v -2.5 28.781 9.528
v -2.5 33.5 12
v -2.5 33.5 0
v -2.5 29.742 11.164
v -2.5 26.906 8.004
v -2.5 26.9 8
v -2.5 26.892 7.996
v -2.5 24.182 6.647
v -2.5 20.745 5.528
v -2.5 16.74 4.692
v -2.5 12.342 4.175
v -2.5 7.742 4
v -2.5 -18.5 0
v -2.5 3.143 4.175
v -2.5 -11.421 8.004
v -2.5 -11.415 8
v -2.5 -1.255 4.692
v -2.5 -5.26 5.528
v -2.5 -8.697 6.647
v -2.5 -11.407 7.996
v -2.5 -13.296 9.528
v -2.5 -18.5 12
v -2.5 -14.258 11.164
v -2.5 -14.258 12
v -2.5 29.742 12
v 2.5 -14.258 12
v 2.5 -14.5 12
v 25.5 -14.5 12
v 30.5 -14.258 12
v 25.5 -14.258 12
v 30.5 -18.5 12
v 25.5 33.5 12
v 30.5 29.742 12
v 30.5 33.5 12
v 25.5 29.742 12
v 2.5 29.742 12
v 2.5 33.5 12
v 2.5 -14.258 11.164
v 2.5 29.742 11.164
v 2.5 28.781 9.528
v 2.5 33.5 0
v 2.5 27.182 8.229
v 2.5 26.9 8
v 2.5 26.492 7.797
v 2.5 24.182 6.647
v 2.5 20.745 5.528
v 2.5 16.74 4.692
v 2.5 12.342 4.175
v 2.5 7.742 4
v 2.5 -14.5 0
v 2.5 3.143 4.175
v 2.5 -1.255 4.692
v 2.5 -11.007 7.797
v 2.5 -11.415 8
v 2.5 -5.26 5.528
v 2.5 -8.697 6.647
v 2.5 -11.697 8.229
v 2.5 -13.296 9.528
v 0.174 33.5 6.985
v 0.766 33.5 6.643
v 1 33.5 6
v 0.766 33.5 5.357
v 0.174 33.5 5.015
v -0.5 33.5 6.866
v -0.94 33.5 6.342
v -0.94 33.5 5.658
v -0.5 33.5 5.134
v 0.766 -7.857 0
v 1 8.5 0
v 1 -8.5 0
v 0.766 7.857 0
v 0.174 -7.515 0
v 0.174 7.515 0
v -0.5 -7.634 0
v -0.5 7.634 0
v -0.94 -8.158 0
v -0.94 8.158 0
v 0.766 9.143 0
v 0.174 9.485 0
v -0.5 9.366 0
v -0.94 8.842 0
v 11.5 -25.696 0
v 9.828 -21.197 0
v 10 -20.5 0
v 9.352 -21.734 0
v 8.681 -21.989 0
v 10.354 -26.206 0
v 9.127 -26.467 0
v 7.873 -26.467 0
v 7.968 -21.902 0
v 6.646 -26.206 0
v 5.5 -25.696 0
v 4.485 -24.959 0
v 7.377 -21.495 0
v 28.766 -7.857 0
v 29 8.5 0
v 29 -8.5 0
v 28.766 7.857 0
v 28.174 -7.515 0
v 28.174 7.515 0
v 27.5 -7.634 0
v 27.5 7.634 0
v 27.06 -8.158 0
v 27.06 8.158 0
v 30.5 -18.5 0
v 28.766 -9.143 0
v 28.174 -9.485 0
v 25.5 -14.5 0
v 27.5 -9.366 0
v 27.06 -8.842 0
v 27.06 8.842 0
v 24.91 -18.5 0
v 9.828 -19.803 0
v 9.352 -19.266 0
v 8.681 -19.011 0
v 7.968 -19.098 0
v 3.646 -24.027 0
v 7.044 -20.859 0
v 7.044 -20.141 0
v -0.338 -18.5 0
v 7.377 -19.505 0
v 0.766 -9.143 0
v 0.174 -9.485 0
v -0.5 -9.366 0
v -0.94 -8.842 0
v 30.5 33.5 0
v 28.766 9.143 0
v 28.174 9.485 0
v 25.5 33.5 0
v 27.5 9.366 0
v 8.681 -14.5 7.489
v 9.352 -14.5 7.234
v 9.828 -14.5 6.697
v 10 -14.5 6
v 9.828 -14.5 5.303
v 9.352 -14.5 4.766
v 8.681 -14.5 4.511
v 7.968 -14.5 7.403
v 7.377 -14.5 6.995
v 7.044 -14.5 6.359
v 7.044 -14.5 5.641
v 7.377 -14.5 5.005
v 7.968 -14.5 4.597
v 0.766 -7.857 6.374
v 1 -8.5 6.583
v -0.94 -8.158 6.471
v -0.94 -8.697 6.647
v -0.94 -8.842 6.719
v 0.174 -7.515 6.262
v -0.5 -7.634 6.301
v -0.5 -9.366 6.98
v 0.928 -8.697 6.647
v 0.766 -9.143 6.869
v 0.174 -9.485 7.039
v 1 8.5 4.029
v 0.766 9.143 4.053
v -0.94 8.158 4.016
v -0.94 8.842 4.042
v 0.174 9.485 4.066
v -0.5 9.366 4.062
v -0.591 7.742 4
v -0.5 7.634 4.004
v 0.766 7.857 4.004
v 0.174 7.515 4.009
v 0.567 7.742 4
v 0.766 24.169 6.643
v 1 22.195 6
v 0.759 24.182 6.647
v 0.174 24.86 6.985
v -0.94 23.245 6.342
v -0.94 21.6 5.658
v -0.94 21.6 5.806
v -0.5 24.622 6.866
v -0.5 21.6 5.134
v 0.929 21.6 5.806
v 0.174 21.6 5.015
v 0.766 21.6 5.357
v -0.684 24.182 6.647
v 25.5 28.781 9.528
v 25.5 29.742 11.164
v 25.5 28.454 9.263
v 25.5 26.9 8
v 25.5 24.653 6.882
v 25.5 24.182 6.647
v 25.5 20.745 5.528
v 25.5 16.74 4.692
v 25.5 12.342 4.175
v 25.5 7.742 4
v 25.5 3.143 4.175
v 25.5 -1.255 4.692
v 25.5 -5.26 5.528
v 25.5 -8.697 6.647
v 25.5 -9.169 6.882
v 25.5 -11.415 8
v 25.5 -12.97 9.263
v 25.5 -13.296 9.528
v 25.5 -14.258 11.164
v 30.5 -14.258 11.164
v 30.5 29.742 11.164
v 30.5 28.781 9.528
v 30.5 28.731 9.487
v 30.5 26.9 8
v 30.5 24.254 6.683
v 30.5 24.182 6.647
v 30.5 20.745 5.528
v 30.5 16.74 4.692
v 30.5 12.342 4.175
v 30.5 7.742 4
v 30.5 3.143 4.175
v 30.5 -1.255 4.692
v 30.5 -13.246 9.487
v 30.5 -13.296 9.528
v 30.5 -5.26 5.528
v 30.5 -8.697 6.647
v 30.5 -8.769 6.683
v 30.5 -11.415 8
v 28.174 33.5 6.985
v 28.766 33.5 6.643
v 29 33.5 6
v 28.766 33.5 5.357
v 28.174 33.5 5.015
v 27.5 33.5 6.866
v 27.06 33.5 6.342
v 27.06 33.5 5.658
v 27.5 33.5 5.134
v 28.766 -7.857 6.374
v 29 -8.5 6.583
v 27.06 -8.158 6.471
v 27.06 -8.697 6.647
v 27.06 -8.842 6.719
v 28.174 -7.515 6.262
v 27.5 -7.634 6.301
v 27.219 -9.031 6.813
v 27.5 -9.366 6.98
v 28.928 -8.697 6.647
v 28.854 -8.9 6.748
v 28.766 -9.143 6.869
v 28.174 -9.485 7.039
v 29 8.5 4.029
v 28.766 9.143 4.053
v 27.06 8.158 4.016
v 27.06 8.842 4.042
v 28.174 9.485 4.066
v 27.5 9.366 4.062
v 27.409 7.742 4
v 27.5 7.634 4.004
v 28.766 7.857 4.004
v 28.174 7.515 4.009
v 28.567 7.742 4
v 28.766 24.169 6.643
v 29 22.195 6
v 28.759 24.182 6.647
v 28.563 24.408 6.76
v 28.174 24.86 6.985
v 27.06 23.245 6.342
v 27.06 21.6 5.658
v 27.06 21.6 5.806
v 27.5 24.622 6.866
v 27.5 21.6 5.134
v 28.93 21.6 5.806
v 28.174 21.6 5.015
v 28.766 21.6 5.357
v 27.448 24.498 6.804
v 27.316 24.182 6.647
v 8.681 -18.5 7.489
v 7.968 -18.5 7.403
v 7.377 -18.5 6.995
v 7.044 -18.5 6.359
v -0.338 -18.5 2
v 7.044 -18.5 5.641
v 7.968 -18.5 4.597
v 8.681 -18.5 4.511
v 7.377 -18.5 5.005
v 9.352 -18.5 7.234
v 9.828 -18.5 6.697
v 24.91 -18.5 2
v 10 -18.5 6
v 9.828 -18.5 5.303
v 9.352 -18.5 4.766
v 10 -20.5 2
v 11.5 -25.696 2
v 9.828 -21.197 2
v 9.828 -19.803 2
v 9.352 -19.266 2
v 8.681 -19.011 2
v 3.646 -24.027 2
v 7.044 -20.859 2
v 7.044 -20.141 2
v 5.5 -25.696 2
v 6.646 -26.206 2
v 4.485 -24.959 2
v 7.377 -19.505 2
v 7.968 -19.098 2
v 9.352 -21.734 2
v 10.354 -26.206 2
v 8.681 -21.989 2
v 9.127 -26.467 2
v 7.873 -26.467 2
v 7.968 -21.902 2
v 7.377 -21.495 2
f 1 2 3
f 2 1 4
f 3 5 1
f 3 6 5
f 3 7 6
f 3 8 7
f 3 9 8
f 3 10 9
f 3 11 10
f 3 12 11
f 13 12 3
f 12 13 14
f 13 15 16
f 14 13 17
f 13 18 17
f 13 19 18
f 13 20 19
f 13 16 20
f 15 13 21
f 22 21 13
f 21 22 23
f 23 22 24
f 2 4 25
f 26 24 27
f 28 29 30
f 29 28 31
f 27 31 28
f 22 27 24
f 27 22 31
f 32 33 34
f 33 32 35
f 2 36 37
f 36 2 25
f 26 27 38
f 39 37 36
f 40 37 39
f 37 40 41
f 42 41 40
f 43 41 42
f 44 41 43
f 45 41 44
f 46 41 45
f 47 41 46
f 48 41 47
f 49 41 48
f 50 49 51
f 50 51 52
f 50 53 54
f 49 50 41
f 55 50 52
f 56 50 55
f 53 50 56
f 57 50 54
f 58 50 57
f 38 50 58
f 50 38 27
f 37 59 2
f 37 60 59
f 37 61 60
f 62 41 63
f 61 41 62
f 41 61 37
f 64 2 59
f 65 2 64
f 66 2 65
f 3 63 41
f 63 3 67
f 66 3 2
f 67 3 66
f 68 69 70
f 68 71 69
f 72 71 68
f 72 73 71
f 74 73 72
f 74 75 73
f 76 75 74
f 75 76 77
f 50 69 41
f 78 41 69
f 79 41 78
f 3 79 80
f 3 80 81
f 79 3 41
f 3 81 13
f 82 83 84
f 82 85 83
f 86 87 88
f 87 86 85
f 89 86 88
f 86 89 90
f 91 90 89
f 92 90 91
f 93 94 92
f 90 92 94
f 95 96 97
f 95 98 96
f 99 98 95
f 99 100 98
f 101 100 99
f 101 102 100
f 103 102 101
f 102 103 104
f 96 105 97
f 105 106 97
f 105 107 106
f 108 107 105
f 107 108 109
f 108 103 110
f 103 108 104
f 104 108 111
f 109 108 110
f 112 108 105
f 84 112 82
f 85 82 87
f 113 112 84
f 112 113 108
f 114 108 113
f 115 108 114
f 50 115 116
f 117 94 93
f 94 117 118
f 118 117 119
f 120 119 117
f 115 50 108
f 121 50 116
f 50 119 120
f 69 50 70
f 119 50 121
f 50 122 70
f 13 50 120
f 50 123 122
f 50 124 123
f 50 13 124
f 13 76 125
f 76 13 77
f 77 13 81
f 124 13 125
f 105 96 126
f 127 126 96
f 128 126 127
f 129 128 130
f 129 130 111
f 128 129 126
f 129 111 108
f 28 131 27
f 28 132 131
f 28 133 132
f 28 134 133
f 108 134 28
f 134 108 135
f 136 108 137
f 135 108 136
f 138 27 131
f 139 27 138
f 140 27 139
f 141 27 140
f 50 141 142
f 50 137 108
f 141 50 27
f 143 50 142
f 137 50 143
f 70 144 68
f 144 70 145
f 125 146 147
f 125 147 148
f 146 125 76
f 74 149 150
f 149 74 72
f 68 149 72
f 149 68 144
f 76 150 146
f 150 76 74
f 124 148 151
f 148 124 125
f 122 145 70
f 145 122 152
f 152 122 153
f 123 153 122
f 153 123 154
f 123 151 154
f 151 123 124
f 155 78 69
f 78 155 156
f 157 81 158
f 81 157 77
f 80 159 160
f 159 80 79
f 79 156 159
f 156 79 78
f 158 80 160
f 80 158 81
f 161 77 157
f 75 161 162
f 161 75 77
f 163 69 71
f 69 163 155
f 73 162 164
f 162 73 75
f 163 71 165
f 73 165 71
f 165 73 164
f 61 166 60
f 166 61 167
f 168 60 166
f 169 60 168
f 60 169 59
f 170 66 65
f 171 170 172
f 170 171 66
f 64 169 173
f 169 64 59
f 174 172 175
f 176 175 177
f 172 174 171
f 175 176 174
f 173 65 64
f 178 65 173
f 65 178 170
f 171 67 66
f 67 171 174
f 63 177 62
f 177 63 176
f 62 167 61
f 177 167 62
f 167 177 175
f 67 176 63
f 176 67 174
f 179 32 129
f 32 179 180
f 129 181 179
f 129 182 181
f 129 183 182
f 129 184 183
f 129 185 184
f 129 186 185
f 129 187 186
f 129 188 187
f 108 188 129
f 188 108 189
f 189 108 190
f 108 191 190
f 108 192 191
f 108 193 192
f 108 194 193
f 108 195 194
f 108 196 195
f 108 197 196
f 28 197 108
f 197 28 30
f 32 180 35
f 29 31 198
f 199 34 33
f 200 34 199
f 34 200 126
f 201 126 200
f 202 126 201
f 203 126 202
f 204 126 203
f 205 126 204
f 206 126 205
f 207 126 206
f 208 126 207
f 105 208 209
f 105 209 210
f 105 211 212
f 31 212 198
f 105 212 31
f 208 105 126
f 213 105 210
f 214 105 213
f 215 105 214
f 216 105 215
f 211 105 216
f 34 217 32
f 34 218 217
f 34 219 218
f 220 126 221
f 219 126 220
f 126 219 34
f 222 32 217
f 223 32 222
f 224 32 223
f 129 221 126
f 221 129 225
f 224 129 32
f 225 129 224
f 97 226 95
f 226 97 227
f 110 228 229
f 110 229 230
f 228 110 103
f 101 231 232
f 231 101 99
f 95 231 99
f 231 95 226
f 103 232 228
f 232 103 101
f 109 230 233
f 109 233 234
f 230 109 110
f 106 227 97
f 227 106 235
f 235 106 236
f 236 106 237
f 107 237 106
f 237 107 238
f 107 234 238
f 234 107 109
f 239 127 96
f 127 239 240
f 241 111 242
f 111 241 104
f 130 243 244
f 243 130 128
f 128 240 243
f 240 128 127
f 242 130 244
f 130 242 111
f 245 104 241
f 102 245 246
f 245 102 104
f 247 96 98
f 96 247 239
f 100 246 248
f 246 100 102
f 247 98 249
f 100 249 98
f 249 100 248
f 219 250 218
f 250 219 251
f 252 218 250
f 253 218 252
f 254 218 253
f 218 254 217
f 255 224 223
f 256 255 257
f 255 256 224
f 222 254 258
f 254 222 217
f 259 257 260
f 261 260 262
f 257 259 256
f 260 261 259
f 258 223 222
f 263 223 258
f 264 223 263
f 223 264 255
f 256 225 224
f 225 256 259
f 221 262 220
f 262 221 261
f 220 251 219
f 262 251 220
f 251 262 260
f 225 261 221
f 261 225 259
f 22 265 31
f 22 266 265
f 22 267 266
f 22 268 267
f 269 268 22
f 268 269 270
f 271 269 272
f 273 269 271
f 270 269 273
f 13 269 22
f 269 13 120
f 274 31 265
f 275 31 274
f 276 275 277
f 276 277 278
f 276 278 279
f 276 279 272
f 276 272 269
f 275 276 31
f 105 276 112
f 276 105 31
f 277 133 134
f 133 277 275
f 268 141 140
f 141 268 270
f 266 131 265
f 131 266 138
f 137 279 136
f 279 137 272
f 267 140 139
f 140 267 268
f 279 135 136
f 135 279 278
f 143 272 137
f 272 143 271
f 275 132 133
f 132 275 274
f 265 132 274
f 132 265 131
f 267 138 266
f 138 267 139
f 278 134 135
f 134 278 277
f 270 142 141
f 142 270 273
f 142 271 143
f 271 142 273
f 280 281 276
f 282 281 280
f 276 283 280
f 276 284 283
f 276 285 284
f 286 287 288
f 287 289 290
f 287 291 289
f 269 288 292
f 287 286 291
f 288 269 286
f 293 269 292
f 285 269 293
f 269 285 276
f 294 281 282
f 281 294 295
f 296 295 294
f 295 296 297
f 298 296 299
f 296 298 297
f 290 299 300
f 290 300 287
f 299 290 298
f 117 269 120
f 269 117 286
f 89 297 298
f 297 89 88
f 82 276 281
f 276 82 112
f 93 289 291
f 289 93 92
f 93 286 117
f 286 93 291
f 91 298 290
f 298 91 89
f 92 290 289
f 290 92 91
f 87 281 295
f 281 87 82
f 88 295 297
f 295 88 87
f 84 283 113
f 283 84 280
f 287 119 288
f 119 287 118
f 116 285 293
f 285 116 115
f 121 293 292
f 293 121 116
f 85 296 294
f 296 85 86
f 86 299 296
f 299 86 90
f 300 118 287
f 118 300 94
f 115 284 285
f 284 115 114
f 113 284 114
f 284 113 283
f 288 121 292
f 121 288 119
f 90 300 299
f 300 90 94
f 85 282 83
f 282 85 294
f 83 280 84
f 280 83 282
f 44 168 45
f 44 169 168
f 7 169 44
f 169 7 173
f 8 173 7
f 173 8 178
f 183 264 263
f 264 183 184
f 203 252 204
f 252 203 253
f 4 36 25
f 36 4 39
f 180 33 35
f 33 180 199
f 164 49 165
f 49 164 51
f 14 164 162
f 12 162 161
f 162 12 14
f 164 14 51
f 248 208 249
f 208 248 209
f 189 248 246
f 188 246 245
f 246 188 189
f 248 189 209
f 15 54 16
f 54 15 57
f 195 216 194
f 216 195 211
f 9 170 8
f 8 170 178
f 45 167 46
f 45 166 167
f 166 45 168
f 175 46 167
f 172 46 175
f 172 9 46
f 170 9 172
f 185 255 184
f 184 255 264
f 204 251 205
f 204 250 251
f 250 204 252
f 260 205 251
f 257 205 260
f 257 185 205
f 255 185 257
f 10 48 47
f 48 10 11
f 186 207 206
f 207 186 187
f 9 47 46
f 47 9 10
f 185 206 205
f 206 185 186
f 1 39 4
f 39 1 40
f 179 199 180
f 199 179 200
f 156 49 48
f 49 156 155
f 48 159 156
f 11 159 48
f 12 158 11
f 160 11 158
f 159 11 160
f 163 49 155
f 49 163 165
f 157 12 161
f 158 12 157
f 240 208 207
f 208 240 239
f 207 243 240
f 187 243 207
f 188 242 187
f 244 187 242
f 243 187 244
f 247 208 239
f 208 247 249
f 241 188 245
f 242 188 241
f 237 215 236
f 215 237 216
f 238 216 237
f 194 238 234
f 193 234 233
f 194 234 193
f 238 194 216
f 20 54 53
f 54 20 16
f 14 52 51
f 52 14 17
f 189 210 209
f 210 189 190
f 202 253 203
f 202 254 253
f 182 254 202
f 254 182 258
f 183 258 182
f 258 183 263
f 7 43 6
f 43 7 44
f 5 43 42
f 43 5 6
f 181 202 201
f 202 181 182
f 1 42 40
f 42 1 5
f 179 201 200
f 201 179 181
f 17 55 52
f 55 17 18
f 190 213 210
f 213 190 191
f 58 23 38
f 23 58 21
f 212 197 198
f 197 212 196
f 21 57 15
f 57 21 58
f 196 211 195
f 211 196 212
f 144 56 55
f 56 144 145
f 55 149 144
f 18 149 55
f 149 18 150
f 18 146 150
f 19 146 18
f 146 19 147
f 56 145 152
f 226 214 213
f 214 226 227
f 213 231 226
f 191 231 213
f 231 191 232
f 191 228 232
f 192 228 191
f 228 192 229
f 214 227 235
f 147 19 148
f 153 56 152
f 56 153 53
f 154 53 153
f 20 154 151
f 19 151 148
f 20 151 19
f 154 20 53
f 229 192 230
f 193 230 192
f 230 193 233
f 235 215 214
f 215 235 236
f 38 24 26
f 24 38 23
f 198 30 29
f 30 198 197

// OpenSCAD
$fs=.75;

difference() {
	union() {
		difference() {
			union() {
				translate(v = [0, -14.5000000000, 0]) {
					translate(v = [0.0000000000, 14.5000000000, 6.0000000000]) {
						translate(v = [-2.5000000000, -14.5000000000, -6.0000000000]) {
							cube(size = [5.0000000000, 29.0000000000, 12.0000000000]);
						}
					}
				}
				union() {
					translate(v = [0, 14.5000000000, 0]) {
						translate(v = [0.0000000000, 9.5000000000, 6.0000000000]) {
							translate(v = [-2.5000000000, -9.5000000000, -6.0000000000]) {
								cube(size = [5.0000000000, 19.0000000000, 12.0000000000]);
							}
						}
					}
					translate(v = [0, 33.5000000000, 0]) {
						translate(v = [0.0000000000, -6.0000000000, 6.0000000000]) {
							translate(v = [-2.5000000000, -6.0000000000, -6.0000000000]) {
								cube(size = [5.0000000000, 12.0000000000, 12.0000000000]);
							}
						}
					}
				}
			}
			translate(v = [0, -14.5000000000, 0]) {
				union() {
					translate(v = [0, 6.0000000000, 0]) {
						cylinder(d = 2.0000000000, h = 12.0000000000);
					}
					translate(v = [0, 23.0000000000, 0]) {
						cylinder(d = 2.0000000000, h = 12.0000000000);
					}
				}
			}
			#translate(v = [0, 33.6000000000, 6.0000000000]) {
				rotate(a = [90, 0, 0]) {
					cylinder(d = 2.0000000000, h = 12.0000000000);
				}
			}
		}
		translate(v = [28.0000000000, 0, 0]) {
			difference() {
				union() {
					translate(v = [0, -14.5000000000, 0]) {
						translate(v = [0.0000000000, 14.5000000000, 6.0000000000]) {
							translate(v = [-2.5000000000, -14.5000000000, -6.0000000000]) {
								cube(size = [5.0000000000, 29.0000000000, 12.0000000000]);
							}
						}
					}
					union() {
						translate(v = [0, 14.5000000000, 0]) {
							translate(v = [0.0000000000, 9.5000000000, 6.0000000000]) {
								translate(v = [-2.5000000000, -9.5000000000, -6.0000000000]) {
									cube(size = [5.0000000000, 19.0000000000, 12.0000000000]);
								}
							}
						}
						translate(v = [0, 33.5000000000, 0]) {
							translate(v = [0.0000000000, -6.0000000000, 6.0000000000]) {
								translate(v = [-2.5000000000, -6.0000000000, -6.0000000000]) {
									cube(size = [5.0000000000, 12.0000000000, 12.0000000000]);
								}
							}
						}
					}
				}
				translate(v = [0, -14.5000000000, 0]) {
					union() {
						translate(v = [0, 6.0000000000, 0]) {
							cylinder(d = 2.0000000000, h = 12.0000000000);
						}
						translate(v = [0, 23.0000000000, 0]) {
							cylinder(d = 2.0000000000, h = 12.0000000000);
						}
					}
				}
				#translate(v = [0, 33.6000000000, 6.0000000000]) {
					rotate(a = [90, 0, 0]) {
						cylinder(d = 2.0000000000, h = 12.0000000000);
					}
				}
			}
		}
		difference() {
			translate(v = [-2.5000000000, -14.5000000000, 0]) {
				translate(v = [16.5000000000, -2.0000000000, 6.0000000000]) {
					translate(v = [-16.5000000000, -2.0000000000, -6.0000000000]) {
						cube(size = [33.0000000000, 4.0000000000, 12.0000000000]);
					}
				}
			}
			translate(v = [8.5000000000, -14.5000000000, 6.0000000000]) {
				rotate(a = [90, 0, 0]) {
					cylinder(d = 3, h = 12.0000000000);
				}
			}
		}
		translate(v = [8.5000000000, -20.5000000000, 0]) {
			difference() {
				hull() {
					cylinder(d = 12.0000000000, h = 2);
					#translate(v = [-11.0000000000, 6.0000000000, 0]) {
						translate(v = [16.5000000000, -0.5000000000, 1.0000000000]) {
							translate(v = [-16.5000000000, -0.5000000000, -1.0000000000]) {
								cube(size = [33.0000000000, 1, 2]);
							}
						}
					}
				}
				cylinder(d = 3, h = 2);
			}
		}
	}
	#resize(newsize = [0, 44, 0]) {
		translate(v = [-2.6000000000, 2.8000000000, 12.0000000000]) {
			rotate(a = [0, 90, 0]) {
				cylinder(h = 34.0000000000, r = 8);
			}
		}
	}
}
/***********************************************
*********      SolidPython code:      **********
************************************************
 
from solid import *
from solid import extensions
from math import *

class Object:
    pass

servo = Object()
servo.width = 12.0
servo.height = 23.0
servo.wingL = 5.0
servo.holeD = 2.0
servo.wingH = 19.0
servo.wingThk = 4.0

thk= servo.width
servoSpace = 5.0
w = servo.width*2 + servoSpace

def screwHole():
	return cylinder(d=servo.holeD,h=servo.width)

def bar2(): 
	return cube([servo.wingL,w,thk]).align('y-','z-').move(y=-w/2.)
bar2bar = cube([w,servoSpace-1,thk]).align('x-','z-')
bar2Holes = (screwHole().move(y=servo.width/2.)+ screwHole().move(y= w-servo.width/2.)).move(y=-w/2.)

def bar3():
	return ( cube([servo.wingL, servo.wingH,thk]).align('y-','z-').move(y=servo.width+servoSpace/2)
		     + cube([servo.wingL, thk, servo.width]).align('y+','z-').move(y=servo.width+servoSpace/2+servo.wingH)
		    )
	         
bar3Hole = screwHole().rot(x=90).move(y=servo.width+servoSpace/2+servo.wingH+.1, z = servo.width/2).debug()
_3rdServo = bar3() + bar3().move(x=servo.height+servo.wingL)

_3rdAxis = (cube([servo.height+2*servo.wingL, servo.wingThk,servo.width]).align('x-','y+','z-').move(x=-servo.wingL/2,y=-w/2.)
	        - cylinder(d=3, h = thk).rot(x=90).move(x=+servo.wingL/2.+servo.width/2,y=-w/2,z=servo.width/2))

def bar():
	return bar2() + bar3() - bar2Holes - bar3Hole

foo = cylinder(8,servo.height+2*servo.wingL+1).rot(y=90).move(x=-servo.wingL/2-.1,y=2.8,z=thk).resize([0,44,0]).debug()

_4thAxisThk = 2
_4thAxis = ( hull( cylinder(d=servo.width, h=_4thAxisThk)
	             , cube([servo.height+2*servo.wingL,1,_4thAxisThk]).align('x-','y+','z-').move(y=servo.width/2,x=-servo.wingL-servo.width/2).debug())
            - cylinder(d=3,h=_4thAxisThk)
	        ).move(x=servo.wingL/2+servo.width/2, y = -servo.width/2 -servo.width-servoSpace/2)

scene = bar() + bar().move(x=servo.height+servo.wingL) + _3rdAxis +_4thAxis - foo

scad_render_to_file(scene, 'preview.scad', '$fs=.75;') 
 
************************************************/
